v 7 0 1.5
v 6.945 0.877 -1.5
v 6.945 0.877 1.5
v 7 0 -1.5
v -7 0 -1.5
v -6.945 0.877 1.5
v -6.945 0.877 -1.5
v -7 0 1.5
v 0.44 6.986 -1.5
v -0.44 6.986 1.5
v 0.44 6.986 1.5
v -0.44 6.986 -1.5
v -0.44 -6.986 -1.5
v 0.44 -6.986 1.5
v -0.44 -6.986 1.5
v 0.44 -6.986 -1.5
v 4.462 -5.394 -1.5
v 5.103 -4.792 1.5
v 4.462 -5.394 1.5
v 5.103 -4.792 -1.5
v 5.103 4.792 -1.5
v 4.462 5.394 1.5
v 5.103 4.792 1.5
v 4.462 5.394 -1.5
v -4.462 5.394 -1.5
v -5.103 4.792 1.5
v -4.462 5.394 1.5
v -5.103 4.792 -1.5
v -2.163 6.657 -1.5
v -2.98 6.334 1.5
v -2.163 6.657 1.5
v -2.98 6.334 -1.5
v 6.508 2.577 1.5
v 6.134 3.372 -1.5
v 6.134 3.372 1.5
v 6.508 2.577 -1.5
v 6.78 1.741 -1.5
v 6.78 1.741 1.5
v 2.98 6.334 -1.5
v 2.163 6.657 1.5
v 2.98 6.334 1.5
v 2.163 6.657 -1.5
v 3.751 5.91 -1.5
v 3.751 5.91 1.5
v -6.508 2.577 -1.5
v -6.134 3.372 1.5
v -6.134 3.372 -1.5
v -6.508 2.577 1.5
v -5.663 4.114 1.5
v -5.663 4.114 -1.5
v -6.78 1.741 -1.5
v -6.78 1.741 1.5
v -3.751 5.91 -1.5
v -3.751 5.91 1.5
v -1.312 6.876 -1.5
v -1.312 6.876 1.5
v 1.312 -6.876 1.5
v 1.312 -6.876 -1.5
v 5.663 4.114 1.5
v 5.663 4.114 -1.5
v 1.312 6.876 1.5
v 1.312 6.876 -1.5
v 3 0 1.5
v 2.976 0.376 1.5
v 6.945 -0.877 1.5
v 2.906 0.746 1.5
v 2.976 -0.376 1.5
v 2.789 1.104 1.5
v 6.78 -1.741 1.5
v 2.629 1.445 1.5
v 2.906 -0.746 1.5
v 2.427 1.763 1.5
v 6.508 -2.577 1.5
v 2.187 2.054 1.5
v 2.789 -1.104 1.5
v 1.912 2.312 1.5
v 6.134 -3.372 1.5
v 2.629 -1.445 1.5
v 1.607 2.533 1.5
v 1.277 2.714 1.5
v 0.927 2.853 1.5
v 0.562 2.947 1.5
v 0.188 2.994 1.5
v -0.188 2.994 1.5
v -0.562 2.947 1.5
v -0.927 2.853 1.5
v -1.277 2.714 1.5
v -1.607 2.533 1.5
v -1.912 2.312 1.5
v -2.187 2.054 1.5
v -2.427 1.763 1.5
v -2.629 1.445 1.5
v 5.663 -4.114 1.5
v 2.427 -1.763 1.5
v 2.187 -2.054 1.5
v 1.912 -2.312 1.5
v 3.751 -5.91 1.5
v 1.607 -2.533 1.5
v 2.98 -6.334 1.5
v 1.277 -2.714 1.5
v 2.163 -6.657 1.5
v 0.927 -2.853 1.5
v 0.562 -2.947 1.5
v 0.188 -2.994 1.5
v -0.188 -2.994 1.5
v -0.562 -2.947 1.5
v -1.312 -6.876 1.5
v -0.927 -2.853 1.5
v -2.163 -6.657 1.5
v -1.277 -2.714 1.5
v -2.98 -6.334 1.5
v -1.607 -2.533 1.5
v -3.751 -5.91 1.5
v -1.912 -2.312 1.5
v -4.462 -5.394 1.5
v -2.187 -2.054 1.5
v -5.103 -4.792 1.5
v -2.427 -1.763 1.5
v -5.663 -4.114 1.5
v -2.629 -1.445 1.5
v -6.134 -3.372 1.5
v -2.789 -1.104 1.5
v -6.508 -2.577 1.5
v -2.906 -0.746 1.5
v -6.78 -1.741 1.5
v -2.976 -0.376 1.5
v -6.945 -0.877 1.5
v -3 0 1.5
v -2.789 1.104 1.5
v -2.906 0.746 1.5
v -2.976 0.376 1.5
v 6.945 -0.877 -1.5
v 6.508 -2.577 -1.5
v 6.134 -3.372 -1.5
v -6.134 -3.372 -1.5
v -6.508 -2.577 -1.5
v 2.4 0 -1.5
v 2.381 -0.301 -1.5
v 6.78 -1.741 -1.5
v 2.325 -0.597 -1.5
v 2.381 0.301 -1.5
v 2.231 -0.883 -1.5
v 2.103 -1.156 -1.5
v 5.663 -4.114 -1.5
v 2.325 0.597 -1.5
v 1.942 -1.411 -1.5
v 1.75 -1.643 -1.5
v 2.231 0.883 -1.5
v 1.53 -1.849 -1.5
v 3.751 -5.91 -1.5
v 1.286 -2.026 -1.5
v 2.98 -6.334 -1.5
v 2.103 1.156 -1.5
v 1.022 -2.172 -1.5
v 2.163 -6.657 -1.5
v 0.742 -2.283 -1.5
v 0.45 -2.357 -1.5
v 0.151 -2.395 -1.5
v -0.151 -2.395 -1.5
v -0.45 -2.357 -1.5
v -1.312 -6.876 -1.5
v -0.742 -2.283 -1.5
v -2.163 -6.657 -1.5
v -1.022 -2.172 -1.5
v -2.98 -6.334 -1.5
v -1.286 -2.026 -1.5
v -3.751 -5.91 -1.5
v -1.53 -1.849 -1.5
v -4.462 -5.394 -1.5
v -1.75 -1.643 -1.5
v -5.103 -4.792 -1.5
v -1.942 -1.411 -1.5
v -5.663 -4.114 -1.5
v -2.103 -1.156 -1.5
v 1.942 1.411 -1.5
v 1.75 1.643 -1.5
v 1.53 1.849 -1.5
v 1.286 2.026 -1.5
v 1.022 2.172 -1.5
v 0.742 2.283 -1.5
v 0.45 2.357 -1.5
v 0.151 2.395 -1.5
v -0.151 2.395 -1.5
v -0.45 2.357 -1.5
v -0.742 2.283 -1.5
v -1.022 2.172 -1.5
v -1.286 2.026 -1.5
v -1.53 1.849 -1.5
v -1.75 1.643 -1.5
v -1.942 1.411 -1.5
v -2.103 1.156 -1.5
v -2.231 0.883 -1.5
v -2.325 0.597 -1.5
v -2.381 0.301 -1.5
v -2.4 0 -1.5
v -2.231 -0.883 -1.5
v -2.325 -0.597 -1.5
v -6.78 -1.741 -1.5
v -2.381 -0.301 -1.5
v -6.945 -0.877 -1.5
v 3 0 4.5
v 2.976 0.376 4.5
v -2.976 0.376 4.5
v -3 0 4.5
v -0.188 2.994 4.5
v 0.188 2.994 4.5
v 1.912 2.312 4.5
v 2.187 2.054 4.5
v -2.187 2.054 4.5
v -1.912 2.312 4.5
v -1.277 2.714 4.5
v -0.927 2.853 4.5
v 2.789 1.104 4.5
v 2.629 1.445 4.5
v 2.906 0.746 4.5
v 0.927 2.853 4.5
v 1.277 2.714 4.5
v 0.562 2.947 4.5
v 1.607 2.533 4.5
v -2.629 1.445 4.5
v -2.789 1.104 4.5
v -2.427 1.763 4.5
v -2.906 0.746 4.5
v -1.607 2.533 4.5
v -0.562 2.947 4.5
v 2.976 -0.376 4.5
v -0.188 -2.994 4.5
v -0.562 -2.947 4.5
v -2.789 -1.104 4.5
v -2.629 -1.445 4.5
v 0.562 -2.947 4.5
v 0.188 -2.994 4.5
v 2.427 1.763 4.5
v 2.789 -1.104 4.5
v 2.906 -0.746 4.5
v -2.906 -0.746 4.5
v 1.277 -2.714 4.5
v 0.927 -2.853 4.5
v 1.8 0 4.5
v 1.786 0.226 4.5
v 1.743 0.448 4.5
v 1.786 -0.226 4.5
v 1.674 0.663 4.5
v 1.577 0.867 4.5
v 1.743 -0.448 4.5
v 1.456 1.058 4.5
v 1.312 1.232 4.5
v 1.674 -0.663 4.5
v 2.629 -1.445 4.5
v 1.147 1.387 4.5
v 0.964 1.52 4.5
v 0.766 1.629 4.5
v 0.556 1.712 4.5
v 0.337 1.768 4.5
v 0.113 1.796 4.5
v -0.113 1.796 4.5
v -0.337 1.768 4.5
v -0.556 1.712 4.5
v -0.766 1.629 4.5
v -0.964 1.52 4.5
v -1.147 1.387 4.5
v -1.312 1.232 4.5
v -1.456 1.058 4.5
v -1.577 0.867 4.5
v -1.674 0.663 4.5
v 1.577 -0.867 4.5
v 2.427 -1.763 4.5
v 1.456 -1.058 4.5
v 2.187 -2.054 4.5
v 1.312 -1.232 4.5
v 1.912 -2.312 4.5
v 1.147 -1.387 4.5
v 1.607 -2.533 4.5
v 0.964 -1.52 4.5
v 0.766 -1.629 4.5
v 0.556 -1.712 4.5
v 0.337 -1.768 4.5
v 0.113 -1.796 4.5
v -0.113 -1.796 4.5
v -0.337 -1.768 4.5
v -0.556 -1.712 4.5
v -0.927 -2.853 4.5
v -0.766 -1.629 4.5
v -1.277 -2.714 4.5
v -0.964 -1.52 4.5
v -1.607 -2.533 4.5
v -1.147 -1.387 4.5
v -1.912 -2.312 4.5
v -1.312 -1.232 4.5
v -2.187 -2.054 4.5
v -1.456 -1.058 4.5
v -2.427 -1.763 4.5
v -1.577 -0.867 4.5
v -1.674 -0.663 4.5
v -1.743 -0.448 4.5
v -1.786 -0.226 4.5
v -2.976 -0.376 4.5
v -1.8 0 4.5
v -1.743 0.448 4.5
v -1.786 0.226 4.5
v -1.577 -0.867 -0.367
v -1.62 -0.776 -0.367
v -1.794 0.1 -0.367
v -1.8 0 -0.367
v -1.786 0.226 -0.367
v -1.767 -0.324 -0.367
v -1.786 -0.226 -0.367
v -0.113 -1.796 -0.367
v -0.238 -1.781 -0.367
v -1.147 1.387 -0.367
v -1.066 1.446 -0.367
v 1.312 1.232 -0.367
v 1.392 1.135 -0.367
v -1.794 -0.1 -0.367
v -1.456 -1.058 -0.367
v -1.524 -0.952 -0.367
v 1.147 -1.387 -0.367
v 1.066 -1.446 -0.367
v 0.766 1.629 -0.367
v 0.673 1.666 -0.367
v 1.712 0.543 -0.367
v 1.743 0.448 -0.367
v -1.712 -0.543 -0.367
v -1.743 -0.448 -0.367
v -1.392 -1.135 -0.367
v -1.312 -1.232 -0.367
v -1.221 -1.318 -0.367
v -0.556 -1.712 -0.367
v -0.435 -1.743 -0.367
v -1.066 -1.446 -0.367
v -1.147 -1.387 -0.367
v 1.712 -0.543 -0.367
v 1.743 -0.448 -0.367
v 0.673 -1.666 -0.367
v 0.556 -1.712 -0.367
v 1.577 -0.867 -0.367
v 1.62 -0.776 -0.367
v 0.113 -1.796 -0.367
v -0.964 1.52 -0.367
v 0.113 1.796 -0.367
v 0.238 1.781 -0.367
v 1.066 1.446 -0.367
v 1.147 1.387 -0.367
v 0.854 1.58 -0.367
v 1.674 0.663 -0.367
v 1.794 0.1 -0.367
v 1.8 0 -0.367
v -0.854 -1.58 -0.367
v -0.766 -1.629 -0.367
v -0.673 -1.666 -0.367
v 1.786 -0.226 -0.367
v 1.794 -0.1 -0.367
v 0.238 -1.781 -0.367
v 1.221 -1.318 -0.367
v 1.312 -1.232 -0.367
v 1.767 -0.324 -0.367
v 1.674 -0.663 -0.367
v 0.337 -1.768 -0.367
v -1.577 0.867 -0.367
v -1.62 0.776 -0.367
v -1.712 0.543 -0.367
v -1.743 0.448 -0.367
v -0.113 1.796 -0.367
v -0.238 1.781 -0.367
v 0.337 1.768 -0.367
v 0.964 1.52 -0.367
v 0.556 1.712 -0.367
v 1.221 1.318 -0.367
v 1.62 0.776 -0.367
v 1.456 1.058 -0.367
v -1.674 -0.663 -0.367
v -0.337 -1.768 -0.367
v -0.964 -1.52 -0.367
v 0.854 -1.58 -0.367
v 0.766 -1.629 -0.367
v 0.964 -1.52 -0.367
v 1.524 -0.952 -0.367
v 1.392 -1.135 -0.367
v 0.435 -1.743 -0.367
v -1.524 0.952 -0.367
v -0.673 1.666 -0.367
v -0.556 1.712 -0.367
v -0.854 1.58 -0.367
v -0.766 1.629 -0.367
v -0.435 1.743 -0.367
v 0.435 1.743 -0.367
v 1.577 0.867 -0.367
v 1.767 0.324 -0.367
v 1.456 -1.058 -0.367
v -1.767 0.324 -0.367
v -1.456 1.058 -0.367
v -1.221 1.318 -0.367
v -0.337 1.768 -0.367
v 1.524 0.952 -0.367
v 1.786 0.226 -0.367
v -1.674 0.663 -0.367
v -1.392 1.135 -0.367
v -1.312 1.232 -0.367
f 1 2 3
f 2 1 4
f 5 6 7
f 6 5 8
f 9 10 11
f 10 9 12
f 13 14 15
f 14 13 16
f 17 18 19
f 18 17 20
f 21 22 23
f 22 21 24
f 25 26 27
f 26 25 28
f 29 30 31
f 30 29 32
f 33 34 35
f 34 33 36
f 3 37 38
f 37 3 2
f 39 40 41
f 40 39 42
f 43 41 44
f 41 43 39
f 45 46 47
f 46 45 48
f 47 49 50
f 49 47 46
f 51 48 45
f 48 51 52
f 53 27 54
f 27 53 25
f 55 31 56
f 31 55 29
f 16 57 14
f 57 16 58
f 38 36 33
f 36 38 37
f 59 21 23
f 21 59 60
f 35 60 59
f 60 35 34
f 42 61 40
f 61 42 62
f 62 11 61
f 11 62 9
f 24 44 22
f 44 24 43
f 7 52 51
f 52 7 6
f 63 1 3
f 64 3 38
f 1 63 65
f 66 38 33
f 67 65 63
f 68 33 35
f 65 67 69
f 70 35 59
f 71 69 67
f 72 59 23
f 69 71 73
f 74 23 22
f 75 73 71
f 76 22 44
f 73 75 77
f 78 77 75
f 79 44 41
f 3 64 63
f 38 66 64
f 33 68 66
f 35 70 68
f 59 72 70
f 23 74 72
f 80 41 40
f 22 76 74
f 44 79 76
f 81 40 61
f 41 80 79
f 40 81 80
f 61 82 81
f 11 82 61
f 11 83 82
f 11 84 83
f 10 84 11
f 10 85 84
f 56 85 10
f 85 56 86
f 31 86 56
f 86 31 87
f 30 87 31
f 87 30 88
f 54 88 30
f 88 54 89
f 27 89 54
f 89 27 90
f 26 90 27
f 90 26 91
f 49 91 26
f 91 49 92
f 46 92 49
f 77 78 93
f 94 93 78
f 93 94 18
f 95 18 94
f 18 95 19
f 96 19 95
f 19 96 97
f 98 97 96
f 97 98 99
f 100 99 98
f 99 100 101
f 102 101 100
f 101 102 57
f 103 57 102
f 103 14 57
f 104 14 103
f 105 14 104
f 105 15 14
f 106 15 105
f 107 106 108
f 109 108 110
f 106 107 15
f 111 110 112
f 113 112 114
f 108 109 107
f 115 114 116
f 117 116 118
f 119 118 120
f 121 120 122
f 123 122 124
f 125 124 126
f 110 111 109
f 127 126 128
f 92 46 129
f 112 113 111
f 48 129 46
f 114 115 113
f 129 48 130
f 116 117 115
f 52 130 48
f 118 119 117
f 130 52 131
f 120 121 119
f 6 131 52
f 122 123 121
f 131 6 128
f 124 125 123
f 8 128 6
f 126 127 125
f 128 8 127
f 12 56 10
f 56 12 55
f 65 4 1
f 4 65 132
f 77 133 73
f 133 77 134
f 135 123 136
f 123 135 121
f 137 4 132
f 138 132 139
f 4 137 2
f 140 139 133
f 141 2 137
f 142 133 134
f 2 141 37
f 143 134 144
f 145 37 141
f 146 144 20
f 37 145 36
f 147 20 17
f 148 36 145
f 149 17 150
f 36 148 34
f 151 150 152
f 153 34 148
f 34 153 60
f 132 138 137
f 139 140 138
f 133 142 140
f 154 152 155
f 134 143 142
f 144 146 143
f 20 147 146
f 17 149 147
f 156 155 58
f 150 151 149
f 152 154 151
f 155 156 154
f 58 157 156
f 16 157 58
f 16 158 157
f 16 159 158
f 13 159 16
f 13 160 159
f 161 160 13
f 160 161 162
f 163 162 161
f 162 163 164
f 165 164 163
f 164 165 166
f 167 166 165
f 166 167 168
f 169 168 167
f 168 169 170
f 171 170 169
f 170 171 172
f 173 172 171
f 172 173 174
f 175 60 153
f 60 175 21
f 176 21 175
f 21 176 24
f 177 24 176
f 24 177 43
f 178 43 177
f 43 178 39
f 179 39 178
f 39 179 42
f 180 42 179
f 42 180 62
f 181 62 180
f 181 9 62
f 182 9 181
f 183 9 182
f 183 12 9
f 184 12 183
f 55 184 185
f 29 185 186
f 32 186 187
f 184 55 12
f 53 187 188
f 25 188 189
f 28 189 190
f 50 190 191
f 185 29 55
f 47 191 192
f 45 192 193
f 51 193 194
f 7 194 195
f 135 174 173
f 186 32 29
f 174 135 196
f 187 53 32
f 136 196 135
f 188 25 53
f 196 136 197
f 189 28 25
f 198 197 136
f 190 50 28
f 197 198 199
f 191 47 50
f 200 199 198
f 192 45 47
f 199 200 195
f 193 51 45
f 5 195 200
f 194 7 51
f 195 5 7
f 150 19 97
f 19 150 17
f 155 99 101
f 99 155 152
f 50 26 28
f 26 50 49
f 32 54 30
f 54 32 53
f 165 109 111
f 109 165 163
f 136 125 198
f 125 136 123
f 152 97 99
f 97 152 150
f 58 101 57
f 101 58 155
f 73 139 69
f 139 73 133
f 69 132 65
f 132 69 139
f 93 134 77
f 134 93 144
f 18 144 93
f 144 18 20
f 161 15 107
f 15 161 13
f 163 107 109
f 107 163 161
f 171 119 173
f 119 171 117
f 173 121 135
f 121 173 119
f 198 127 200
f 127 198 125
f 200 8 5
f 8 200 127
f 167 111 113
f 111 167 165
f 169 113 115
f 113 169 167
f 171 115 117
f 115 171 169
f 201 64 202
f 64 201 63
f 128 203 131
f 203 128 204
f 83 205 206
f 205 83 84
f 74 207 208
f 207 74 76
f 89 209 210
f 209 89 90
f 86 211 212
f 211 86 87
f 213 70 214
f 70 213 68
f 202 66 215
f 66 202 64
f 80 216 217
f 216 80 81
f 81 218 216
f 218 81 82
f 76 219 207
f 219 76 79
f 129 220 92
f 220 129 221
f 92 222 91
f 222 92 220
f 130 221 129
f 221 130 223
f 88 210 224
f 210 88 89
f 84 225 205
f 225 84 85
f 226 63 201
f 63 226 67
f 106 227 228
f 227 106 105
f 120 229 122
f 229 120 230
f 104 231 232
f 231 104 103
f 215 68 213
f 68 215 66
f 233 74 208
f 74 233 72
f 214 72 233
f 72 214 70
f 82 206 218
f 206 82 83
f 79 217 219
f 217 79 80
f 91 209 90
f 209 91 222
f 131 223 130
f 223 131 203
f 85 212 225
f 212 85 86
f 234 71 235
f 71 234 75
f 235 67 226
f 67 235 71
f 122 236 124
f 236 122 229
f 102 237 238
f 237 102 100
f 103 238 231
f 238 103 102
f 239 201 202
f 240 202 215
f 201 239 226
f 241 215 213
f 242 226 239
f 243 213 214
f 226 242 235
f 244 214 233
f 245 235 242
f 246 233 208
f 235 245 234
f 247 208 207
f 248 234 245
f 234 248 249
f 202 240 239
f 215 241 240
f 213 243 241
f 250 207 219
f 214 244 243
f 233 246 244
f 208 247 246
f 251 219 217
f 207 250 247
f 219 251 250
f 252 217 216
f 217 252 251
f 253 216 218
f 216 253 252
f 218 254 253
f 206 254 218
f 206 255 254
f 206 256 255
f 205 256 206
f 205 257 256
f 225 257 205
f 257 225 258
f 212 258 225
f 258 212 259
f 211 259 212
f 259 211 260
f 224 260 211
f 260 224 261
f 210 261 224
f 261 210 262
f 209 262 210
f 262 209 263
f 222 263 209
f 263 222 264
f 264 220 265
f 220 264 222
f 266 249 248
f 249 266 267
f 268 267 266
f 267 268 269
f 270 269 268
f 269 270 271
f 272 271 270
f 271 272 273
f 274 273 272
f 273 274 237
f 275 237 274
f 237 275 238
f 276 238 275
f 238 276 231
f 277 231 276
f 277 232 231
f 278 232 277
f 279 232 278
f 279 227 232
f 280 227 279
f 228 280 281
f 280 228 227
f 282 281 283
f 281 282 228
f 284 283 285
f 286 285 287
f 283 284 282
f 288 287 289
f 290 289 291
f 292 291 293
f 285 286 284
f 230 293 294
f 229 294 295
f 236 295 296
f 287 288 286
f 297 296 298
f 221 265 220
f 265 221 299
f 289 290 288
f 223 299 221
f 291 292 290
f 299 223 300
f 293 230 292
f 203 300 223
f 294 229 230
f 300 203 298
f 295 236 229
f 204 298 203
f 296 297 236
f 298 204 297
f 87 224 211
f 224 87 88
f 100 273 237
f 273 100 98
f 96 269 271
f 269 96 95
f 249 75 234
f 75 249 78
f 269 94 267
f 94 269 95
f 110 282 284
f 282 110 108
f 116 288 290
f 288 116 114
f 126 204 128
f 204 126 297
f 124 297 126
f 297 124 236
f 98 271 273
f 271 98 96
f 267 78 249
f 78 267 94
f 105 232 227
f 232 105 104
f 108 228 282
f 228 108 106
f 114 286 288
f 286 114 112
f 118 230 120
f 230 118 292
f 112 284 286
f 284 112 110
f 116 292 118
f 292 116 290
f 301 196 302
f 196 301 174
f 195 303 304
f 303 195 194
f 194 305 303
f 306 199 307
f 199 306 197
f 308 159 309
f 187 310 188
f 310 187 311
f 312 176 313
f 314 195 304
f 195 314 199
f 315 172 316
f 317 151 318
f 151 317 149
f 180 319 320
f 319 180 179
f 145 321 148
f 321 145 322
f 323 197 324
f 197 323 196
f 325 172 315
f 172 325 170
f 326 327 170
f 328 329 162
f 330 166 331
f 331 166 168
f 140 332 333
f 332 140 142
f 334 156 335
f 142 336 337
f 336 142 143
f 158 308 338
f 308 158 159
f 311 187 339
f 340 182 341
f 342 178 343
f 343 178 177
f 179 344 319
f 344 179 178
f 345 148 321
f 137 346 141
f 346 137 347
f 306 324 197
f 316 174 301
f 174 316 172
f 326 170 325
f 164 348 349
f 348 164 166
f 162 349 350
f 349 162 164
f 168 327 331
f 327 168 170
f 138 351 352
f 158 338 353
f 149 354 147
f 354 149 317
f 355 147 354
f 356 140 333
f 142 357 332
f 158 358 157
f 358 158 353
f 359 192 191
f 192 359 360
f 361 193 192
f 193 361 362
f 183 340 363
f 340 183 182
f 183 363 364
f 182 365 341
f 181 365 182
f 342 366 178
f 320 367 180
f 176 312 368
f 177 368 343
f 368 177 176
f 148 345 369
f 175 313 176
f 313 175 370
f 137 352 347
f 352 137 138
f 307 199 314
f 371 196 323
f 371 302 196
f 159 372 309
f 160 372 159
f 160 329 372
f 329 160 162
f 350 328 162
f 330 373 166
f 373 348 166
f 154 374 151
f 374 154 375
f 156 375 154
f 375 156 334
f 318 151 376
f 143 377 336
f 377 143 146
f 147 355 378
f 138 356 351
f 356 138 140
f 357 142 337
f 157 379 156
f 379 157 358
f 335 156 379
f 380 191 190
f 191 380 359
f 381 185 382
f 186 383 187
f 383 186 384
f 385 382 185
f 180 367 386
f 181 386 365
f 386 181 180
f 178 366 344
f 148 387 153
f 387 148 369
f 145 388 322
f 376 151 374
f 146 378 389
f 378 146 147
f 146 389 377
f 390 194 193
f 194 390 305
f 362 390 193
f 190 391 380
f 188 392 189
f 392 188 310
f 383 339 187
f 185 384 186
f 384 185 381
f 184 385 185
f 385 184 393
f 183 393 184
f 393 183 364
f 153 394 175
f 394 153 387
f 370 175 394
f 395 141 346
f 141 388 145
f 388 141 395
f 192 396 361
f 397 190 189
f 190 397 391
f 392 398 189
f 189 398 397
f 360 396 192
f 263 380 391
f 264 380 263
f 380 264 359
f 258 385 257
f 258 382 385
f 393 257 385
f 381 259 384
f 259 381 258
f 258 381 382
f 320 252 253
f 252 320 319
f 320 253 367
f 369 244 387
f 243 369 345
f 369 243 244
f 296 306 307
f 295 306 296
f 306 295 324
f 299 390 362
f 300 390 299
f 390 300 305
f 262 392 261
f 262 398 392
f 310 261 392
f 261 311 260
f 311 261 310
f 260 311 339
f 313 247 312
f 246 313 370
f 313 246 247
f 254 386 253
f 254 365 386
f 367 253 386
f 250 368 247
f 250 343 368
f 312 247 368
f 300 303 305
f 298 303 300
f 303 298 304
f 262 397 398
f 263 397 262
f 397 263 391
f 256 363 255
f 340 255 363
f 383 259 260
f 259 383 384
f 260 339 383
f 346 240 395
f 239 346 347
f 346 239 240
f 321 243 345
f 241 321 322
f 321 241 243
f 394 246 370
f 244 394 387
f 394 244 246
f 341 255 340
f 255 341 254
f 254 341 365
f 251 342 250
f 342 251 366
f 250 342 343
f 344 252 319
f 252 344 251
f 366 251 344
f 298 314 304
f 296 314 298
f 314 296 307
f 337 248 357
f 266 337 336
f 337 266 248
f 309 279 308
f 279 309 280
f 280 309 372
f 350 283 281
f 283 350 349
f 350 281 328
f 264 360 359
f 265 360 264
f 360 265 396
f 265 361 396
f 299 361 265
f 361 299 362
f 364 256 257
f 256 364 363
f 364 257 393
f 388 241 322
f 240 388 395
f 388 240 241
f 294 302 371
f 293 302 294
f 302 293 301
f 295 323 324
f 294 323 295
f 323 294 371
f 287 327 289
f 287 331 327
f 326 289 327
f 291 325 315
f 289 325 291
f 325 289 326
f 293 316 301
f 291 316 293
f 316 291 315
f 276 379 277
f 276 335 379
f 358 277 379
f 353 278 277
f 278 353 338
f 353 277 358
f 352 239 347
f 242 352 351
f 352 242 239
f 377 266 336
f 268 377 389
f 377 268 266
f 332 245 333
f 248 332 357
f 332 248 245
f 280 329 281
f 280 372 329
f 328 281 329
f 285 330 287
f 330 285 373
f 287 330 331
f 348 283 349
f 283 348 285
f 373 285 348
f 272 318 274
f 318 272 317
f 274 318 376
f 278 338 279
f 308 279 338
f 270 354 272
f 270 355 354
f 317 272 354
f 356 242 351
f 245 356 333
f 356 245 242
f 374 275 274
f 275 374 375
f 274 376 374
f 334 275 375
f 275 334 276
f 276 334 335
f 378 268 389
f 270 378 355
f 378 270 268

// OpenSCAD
$fn = 50;


difference() {
	union() {
		translate(v = [0, 0, -1.5000000000]) {
			cylinder(h = 3, r = 7.0000000000);
		}
		translate(v = [0, 0, -1.5000000000]) {
			cylinder(h = 6, r = 3.0000000000);
		}
	}
	union() {
		translate(v = [0, 0, -1.5000000000]) {
			rotate(a = [0, 180, 0]) {
				difference() {
					union() {
						translate(v = [0, 0, -1.7000000000]) {
							cylinder(h = 1.7000000000, r1 = 1.5000000000, r2 = 2.4000000000);
						}
						translate(v = [0, 0, -6.0000000000]) {
							cylinder(h = 6, r = 1.5000000000);
						}
						translate(v = [0, 0, -6.0000000000]) {
							cylinder(h = 6, r = 1.8000000000);
						}
						translate(v = [0, 0, -6.0000000000]) {
							cylinder(h = 6, r = 1.5000000000);
						}
					}
					union();
				}
			}
		}
		translate(v = [0, 0, -50.0000000000]) {
			cylinder(h = 100, r = 1.5000000000);
		}
	}
}
